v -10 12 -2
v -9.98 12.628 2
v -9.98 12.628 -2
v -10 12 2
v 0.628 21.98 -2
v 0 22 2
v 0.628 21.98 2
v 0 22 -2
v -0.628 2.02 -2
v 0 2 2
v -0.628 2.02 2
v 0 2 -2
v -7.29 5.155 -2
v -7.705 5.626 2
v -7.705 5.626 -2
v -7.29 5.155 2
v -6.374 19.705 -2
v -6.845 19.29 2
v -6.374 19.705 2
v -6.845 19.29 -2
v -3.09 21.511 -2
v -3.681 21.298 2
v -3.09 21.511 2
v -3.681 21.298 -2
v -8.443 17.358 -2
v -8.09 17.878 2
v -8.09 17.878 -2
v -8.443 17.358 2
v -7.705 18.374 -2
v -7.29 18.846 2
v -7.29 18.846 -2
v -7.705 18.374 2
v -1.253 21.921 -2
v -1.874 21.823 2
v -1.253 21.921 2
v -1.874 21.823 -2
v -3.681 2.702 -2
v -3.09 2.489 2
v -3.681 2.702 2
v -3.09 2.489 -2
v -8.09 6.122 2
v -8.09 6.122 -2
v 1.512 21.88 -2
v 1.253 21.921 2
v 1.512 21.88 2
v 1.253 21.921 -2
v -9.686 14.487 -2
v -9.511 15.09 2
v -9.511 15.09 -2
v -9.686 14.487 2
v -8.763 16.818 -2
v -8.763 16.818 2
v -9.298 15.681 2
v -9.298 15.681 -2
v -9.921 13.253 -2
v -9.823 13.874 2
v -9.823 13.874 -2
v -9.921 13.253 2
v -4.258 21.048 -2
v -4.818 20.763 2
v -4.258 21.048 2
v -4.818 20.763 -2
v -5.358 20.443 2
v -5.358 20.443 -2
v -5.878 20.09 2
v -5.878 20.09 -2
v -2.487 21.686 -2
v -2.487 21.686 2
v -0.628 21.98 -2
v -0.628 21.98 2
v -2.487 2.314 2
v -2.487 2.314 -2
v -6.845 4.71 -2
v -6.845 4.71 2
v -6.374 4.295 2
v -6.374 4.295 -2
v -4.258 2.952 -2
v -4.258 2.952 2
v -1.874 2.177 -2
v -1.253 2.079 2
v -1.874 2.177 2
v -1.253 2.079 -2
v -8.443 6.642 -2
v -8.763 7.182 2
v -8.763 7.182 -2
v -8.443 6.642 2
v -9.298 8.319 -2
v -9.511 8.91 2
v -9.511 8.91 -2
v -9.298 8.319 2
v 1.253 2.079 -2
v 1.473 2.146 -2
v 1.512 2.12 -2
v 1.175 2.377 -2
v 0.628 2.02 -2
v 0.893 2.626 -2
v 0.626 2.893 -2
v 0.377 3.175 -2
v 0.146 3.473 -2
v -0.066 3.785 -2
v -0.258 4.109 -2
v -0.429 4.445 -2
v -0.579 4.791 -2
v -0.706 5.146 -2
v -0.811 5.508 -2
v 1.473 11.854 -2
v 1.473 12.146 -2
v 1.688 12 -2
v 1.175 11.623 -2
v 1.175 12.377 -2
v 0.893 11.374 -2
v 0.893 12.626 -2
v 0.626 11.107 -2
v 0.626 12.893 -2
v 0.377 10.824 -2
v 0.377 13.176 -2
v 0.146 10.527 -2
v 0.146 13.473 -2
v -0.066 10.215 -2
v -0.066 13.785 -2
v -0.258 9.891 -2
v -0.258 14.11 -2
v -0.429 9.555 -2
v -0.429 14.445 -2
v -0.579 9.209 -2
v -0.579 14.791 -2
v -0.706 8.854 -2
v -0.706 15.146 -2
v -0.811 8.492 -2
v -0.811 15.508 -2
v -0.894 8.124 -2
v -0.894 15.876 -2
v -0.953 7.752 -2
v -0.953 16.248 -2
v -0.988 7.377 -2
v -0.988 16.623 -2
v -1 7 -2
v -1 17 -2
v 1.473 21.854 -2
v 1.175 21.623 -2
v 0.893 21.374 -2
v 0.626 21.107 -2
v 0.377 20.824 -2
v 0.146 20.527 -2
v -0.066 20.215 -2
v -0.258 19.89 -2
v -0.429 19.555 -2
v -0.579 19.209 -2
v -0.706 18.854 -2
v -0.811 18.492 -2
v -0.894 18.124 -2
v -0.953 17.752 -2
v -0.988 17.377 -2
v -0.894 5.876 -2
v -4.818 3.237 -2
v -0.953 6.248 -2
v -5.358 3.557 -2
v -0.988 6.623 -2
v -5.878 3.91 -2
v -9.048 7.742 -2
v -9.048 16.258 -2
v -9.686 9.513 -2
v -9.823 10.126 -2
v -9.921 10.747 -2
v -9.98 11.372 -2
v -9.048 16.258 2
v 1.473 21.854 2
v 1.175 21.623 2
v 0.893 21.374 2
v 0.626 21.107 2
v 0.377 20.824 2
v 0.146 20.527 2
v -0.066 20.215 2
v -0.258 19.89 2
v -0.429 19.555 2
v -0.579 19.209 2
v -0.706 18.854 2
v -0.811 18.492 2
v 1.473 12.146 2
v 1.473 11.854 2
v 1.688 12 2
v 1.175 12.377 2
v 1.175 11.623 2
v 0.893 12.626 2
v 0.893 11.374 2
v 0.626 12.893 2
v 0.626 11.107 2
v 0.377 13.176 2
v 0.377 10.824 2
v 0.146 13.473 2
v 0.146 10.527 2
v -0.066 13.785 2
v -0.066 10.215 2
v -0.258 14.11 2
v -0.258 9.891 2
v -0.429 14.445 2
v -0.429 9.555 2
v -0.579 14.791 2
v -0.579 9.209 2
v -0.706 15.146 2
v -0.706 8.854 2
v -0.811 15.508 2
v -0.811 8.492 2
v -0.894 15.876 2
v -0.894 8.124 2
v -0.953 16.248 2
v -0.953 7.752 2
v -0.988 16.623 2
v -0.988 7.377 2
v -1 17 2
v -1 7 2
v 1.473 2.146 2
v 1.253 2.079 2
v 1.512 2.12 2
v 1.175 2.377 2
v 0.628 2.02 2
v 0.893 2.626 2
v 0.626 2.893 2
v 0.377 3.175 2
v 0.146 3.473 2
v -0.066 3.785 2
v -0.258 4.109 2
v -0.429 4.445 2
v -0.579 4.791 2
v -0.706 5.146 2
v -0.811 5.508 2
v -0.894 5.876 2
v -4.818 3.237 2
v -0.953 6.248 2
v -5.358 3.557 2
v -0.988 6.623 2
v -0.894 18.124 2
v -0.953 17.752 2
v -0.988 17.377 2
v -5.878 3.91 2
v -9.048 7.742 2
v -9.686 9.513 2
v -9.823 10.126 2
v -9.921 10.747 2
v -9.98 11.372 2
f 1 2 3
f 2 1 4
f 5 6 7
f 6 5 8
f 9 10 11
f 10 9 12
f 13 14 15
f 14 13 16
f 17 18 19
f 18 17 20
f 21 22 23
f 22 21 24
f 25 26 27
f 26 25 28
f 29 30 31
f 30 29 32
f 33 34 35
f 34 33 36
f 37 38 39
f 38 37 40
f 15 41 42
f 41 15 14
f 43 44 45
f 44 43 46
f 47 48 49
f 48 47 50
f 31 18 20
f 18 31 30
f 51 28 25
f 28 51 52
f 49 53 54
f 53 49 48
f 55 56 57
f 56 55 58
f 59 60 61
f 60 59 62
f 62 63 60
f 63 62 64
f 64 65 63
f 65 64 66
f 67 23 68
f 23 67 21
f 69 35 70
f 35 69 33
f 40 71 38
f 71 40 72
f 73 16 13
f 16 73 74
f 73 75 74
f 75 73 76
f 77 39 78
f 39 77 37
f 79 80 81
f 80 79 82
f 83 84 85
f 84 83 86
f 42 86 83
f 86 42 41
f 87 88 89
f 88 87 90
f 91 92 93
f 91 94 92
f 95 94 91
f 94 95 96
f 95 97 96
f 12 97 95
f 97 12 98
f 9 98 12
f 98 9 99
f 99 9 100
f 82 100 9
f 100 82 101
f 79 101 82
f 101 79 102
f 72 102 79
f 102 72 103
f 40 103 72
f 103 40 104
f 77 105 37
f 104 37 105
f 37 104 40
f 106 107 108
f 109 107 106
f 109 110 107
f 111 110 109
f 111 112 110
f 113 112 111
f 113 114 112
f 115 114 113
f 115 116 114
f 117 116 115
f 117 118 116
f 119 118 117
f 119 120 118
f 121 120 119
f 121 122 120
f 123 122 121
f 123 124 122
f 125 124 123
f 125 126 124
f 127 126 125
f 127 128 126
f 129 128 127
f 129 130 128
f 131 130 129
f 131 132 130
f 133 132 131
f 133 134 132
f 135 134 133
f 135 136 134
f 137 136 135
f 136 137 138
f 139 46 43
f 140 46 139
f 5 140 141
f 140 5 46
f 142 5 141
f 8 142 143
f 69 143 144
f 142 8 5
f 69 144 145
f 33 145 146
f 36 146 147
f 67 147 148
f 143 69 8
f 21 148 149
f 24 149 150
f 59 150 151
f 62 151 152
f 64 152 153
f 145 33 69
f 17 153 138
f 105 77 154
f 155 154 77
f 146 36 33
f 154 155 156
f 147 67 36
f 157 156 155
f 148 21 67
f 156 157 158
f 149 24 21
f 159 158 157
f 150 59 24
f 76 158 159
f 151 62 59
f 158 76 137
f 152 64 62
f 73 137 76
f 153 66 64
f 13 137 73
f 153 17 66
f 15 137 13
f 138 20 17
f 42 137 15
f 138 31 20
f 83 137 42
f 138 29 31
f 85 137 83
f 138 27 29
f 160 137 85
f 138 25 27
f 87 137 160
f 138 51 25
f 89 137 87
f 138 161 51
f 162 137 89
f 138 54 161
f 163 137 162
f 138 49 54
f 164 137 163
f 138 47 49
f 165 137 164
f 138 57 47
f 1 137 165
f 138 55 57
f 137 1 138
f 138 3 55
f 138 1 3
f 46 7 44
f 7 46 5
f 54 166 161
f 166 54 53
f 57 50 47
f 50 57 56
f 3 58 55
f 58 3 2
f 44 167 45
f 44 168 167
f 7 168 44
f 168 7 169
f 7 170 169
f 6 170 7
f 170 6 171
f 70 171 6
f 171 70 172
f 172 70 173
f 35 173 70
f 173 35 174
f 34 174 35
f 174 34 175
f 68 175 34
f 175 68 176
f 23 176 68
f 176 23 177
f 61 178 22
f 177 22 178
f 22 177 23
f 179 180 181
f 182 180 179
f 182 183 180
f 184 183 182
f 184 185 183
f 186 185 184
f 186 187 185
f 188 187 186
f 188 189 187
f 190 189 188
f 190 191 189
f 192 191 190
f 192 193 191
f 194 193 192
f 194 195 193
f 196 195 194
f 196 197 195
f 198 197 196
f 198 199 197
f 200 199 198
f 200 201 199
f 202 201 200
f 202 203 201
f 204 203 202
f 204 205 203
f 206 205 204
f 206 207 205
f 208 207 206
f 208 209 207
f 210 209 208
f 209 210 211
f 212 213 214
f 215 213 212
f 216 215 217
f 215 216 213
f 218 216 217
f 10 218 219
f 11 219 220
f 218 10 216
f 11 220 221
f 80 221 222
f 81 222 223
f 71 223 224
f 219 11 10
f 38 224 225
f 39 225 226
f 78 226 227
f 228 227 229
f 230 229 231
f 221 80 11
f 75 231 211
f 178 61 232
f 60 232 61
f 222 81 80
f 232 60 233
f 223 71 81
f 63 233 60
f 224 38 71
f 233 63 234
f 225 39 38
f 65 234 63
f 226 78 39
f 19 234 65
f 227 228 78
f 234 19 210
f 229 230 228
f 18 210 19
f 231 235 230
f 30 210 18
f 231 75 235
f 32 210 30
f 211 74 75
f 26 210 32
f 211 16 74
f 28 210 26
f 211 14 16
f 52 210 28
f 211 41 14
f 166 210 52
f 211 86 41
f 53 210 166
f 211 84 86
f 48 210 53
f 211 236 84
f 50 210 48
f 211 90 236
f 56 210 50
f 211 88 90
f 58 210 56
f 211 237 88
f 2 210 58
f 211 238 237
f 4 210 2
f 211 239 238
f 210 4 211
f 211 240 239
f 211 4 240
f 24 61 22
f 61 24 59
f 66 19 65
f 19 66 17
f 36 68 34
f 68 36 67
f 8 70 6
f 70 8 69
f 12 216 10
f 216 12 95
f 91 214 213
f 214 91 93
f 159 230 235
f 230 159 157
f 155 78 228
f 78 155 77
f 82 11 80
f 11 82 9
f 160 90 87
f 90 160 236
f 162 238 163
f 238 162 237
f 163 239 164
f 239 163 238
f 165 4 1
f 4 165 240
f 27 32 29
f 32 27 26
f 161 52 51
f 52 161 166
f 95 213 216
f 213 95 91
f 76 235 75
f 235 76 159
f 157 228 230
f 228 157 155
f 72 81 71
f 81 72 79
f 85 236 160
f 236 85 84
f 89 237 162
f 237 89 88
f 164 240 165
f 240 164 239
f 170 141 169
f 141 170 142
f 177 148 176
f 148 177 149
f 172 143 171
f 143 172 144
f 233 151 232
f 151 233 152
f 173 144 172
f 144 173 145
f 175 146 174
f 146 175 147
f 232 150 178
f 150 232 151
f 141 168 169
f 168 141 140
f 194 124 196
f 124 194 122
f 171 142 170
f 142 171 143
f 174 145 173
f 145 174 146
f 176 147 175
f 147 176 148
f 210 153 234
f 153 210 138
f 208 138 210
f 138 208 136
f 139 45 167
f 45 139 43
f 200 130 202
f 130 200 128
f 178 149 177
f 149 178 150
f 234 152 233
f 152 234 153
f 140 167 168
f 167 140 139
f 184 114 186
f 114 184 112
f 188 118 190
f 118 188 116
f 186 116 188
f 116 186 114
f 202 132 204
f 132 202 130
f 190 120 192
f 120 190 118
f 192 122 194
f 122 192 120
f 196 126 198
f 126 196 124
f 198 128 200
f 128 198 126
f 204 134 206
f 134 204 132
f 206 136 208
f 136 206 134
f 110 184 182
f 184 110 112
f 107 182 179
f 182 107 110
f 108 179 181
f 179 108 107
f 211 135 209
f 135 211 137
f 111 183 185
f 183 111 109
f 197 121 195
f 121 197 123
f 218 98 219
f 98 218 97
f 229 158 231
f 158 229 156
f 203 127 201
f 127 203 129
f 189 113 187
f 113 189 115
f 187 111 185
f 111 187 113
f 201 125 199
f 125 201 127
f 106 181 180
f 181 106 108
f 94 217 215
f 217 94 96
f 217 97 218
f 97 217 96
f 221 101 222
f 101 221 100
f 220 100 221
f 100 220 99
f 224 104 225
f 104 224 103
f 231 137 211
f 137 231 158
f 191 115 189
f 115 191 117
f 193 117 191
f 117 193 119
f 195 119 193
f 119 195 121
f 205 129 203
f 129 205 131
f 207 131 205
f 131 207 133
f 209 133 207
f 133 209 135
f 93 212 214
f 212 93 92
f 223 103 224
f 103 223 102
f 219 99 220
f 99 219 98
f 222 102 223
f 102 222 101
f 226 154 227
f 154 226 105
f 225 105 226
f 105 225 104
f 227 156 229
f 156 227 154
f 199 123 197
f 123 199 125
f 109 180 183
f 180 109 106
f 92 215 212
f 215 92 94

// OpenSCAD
module blueMoon()
{
	difference() 
	{ 
		// blue moon
		cylinder (h = 4, r=10, center = true, $fn=100);
		
		// top cutout
		translate([5, 5, 0]) 
		cylinder (h = 4.20, r=6, center = true, $fn=100);
				
		// bottom cutout
		translate([5, -5, 0]) 
		cylinder (h = 4.20, r=6, center = true, $fn=100);
		
		// remainder cutout
		translate([10, 0, 5]) 
		color("red")
		cylinder (h = 14.20, r=6, center = true, $fn=100);			
	}
}

translate ([0, 12, 0])
blueMoon();
